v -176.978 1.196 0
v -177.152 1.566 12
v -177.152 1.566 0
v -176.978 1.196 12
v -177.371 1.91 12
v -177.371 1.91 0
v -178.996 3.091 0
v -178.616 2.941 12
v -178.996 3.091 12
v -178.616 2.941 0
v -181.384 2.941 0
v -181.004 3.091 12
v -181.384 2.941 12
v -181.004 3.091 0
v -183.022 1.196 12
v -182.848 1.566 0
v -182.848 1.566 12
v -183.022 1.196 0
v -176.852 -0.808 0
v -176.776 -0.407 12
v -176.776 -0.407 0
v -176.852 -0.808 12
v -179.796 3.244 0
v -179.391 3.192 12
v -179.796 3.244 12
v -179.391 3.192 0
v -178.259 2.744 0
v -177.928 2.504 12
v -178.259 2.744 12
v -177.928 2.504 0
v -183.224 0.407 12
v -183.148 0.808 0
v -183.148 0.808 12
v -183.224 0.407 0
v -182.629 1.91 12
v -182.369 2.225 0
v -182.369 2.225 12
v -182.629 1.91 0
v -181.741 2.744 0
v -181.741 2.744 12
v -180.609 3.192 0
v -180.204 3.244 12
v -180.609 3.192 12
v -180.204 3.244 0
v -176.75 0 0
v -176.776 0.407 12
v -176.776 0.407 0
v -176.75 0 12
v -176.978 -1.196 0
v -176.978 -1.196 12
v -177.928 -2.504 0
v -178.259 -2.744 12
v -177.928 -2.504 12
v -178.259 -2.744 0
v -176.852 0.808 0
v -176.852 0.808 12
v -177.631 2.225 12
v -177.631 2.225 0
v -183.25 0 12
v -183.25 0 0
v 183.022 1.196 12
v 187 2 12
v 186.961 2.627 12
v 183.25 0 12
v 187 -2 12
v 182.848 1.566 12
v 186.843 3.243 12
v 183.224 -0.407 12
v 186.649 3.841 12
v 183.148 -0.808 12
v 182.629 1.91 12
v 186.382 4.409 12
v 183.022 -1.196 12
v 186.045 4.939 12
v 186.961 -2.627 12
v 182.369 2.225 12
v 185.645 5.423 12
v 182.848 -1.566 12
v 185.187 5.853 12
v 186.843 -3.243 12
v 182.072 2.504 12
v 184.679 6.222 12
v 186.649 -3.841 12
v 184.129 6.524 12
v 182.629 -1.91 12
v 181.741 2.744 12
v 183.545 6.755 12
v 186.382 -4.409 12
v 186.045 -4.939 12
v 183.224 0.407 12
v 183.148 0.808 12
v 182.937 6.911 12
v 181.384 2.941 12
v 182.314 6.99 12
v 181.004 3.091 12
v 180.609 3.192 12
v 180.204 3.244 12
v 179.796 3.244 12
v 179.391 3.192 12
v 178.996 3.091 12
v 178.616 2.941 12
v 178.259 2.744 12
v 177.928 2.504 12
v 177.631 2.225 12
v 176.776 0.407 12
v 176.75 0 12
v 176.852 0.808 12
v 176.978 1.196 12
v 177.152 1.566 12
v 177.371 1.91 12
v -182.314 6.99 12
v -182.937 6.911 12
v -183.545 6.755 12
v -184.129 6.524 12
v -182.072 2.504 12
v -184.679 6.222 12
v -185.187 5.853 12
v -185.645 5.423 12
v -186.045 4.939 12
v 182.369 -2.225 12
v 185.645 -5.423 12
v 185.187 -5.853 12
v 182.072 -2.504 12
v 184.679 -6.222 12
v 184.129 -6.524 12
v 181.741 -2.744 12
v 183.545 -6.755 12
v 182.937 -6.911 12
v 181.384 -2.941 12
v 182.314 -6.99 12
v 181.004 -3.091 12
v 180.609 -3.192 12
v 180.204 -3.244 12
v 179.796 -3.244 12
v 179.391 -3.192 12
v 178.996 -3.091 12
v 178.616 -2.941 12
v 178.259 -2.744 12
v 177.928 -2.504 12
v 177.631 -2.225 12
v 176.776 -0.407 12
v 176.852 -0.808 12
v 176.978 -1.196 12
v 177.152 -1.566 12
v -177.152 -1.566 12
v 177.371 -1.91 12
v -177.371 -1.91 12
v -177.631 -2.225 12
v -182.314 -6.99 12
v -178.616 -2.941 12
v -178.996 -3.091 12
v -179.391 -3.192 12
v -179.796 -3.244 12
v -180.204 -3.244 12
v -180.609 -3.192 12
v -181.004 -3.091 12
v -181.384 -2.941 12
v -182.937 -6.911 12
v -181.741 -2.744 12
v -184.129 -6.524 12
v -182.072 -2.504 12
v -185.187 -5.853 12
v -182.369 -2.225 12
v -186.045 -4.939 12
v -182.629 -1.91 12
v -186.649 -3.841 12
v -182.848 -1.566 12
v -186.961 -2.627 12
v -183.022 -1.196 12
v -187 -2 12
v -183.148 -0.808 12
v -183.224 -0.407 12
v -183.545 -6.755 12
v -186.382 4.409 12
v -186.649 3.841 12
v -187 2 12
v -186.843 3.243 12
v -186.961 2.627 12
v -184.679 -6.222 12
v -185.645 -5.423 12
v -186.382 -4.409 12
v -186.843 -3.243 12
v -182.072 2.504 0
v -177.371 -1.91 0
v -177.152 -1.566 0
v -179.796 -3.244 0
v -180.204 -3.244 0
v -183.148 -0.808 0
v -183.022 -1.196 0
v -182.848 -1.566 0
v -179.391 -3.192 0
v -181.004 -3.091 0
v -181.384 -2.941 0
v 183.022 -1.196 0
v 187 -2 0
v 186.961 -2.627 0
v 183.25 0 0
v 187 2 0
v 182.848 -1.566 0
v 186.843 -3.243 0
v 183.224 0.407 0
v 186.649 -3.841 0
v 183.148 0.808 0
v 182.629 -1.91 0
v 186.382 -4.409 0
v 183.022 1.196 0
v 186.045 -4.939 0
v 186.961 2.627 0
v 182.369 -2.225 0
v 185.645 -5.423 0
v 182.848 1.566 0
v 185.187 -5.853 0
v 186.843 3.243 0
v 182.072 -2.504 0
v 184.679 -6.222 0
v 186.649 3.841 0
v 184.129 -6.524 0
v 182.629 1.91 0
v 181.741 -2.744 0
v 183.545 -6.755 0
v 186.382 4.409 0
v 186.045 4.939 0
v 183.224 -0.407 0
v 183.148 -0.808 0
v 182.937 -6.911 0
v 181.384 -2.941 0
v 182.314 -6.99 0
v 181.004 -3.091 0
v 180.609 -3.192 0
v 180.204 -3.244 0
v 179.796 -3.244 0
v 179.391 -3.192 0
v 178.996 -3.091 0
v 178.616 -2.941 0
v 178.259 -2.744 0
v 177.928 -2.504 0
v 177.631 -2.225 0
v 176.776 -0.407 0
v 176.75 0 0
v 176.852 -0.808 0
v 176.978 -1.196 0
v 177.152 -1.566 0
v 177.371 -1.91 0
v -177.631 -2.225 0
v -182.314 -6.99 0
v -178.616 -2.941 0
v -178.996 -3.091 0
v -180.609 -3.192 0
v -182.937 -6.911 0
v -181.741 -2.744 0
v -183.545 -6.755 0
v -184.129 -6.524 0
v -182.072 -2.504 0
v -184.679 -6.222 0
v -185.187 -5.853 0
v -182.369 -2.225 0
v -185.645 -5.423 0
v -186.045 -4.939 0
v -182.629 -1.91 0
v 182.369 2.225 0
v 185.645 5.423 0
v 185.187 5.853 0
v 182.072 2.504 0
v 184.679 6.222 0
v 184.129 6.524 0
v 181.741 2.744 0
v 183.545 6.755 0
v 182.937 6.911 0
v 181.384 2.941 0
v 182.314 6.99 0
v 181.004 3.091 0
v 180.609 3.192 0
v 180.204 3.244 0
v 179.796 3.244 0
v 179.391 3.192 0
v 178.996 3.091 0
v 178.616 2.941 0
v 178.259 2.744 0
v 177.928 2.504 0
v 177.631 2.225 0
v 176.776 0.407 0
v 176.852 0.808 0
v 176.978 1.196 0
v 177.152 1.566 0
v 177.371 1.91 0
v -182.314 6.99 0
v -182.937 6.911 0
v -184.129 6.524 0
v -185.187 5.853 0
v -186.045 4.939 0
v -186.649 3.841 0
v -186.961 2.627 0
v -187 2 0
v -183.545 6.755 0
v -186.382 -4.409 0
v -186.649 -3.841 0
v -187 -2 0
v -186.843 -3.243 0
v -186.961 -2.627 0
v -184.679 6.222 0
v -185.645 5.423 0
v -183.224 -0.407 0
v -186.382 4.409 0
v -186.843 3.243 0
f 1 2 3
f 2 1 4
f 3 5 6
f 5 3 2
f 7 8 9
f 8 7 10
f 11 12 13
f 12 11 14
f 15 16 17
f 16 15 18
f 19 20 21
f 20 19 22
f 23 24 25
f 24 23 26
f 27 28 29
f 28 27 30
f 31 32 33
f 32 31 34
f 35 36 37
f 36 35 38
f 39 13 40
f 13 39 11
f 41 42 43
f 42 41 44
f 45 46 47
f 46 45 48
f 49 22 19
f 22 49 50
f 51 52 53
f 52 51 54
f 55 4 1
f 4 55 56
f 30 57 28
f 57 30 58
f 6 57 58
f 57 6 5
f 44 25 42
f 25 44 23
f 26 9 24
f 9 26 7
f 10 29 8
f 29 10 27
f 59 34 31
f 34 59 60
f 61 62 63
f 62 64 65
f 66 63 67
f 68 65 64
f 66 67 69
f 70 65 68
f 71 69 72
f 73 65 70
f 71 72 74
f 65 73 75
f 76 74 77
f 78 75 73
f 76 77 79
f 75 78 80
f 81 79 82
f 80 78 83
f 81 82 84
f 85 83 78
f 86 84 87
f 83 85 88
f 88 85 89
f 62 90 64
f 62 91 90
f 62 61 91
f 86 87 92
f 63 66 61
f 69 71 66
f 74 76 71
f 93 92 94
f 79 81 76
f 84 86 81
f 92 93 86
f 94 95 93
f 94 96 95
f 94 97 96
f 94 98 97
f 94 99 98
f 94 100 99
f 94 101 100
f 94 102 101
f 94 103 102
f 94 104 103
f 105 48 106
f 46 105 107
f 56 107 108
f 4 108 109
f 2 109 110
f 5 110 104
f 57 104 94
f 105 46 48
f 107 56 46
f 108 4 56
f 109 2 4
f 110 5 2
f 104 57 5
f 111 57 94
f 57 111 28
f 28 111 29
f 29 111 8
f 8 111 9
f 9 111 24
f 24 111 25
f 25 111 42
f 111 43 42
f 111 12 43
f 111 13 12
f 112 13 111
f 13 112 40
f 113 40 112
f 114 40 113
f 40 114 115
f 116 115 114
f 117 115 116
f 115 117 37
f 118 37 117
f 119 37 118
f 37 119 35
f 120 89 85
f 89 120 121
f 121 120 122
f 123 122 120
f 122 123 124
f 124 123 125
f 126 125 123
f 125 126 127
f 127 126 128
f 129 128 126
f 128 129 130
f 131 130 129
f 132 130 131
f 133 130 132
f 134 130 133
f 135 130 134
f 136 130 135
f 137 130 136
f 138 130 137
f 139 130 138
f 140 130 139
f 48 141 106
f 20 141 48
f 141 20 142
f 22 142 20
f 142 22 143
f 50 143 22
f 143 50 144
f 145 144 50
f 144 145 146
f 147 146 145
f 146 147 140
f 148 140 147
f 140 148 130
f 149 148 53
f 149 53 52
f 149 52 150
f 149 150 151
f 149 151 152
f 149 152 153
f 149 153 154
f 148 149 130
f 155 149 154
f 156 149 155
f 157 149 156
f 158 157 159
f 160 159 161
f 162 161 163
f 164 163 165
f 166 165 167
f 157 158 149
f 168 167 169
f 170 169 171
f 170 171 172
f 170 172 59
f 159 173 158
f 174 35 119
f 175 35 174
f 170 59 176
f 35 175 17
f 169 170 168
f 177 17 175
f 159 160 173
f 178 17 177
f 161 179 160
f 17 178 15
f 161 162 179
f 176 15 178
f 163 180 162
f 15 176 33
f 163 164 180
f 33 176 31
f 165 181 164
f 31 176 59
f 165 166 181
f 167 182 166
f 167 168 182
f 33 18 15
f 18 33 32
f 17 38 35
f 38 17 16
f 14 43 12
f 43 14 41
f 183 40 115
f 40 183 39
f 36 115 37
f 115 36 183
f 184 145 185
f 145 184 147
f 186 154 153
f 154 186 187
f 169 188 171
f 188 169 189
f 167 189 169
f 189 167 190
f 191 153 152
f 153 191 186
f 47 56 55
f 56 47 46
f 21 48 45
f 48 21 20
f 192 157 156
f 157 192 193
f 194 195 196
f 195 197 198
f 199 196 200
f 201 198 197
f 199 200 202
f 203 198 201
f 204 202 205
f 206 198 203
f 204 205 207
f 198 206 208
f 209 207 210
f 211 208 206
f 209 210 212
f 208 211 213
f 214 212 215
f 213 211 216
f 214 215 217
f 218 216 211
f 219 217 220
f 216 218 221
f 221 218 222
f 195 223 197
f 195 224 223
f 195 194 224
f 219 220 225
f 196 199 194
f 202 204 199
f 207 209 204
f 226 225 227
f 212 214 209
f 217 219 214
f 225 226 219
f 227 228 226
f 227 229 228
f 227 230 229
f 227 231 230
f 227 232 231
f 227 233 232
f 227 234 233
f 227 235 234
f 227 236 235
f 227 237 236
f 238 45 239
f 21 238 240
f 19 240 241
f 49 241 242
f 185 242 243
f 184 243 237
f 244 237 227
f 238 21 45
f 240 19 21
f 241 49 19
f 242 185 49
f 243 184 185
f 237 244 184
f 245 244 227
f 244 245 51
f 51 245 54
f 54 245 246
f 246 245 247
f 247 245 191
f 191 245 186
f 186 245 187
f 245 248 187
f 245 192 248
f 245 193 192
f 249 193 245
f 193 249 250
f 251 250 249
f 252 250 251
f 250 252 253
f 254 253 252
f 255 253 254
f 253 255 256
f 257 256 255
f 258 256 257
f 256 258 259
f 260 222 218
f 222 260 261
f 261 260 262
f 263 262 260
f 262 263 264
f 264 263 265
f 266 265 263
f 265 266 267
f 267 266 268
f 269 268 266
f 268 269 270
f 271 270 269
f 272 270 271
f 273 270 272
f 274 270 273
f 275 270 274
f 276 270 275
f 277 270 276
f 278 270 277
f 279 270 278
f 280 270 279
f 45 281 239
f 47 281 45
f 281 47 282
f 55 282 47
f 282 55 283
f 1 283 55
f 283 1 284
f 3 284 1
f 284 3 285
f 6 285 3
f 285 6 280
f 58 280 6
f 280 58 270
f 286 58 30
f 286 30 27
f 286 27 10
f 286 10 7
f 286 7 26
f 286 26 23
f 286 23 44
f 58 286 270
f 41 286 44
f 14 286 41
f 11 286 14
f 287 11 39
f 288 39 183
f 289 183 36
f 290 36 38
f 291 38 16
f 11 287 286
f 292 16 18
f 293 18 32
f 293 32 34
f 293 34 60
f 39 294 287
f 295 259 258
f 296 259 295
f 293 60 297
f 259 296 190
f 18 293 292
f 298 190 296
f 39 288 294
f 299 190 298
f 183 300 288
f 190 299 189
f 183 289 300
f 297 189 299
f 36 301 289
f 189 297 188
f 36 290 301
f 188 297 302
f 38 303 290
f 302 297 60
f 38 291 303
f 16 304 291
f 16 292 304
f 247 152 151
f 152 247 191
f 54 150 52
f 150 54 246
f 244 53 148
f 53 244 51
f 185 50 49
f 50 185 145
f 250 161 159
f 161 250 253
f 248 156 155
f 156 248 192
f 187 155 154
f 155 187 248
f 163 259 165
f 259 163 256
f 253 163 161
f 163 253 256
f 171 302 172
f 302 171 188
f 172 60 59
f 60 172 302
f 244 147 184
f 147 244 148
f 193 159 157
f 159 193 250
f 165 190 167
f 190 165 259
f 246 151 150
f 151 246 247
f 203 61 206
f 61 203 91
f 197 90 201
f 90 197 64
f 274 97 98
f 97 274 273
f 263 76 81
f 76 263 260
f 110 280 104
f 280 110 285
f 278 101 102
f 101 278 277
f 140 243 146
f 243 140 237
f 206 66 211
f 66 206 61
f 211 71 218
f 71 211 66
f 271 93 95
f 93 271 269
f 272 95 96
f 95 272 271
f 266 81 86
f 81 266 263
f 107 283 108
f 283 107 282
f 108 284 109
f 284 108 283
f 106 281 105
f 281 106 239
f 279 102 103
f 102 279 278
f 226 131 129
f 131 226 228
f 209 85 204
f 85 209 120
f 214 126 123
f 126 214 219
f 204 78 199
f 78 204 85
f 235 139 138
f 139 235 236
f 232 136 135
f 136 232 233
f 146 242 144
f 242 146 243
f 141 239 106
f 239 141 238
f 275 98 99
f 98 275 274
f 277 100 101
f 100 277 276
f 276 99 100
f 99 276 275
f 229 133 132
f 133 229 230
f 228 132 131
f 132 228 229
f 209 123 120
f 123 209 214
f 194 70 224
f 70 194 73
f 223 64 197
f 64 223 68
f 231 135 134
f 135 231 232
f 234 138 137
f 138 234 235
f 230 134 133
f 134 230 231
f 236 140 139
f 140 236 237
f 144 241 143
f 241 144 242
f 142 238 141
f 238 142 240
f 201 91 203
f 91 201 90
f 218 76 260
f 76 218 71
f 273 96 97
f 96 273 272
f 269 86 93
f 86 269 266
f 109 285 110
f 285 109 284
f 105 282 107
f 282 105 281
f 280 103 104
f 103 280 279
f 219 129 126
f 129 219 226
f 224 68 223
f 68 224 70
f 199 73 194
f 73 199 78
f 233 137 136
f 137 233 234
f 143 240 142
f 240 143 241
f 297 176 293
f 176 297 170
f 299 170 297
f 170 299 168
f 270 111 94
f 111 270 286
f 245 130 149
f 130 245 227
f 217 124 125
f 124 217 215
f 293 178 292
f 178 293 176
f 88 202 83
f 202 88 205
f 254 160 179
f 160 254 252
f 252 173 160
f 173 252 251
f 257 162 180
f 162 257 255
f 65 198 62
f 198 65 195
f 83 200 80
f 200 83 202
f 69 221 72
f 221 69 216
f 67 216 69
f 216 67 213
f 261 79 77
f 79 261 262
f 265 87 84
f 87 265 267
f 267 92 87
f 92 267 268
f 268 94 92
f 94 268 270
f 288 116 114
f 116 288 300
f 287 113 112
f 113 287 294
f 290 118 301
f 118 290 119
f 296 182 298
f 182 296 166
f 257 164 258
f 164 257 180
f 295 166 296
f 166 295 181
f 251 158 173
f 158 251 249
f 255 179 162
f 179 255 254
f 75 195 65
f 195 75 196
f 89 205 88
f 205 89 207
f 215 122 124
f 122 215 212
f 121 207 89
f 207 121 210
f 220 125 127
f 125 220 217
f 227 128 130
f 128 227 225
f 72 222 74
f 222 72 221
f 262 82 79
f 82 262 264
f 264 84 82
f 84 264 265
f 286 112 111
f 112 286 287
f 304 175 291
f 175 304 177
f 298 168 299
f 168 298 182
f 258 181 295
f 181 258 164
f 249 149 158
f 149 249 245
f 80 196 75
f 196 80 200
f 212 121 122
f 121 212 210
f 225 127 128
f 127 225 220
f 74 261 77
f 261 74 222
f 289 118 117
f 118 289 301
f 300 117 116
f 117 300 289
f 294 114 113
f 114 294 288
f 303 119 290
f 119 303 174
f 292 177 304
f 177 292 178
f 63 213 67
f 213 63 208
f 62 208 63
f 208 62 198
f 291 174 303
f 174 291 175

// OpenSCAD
$fn = 50;


difference() {
	union() {
		hull() {
			translate(v = [-182.0000000000, 2.0000000000, 0]) {
				cylinder(h = 12, r = 5);
			}
			translate(v = [182.0000000000, 2.0000000000, 0]) {
				cylinder(h = 12, r = 5);
			}
			translate(v = [-182.0000000000, -2.0000000000, 0]) {
				cylinder(h = 12, r = 5);
			}
			translate(v = [182.0000000000, -2.0000000000, 0]) {
				cylinder(h = 12, r = 5);
			}
		}
	}
	union() {
		translate(v = [-180.0000000000, 0.0000000000, -100.0000000000]) {
			cylinder(h = 200, r = 3.2500000000);
		}
		translate(v = [-180.0000000000, 0.0000000000, -100.0000000000]) {
			cylinder(h = 200, r = 3.2500000000);
		}
		translate(v = [180.0000000000, 0.0000000000, -100.0000000000]) {
			cylinder(h = 200, r = 3.2500000000);
		}
		translate(v = [180.0000000000, 0.0000000000, -100.0000000000]) {
			cylinder(h = 200, r = 3.2500000000);
		}
	}
}
